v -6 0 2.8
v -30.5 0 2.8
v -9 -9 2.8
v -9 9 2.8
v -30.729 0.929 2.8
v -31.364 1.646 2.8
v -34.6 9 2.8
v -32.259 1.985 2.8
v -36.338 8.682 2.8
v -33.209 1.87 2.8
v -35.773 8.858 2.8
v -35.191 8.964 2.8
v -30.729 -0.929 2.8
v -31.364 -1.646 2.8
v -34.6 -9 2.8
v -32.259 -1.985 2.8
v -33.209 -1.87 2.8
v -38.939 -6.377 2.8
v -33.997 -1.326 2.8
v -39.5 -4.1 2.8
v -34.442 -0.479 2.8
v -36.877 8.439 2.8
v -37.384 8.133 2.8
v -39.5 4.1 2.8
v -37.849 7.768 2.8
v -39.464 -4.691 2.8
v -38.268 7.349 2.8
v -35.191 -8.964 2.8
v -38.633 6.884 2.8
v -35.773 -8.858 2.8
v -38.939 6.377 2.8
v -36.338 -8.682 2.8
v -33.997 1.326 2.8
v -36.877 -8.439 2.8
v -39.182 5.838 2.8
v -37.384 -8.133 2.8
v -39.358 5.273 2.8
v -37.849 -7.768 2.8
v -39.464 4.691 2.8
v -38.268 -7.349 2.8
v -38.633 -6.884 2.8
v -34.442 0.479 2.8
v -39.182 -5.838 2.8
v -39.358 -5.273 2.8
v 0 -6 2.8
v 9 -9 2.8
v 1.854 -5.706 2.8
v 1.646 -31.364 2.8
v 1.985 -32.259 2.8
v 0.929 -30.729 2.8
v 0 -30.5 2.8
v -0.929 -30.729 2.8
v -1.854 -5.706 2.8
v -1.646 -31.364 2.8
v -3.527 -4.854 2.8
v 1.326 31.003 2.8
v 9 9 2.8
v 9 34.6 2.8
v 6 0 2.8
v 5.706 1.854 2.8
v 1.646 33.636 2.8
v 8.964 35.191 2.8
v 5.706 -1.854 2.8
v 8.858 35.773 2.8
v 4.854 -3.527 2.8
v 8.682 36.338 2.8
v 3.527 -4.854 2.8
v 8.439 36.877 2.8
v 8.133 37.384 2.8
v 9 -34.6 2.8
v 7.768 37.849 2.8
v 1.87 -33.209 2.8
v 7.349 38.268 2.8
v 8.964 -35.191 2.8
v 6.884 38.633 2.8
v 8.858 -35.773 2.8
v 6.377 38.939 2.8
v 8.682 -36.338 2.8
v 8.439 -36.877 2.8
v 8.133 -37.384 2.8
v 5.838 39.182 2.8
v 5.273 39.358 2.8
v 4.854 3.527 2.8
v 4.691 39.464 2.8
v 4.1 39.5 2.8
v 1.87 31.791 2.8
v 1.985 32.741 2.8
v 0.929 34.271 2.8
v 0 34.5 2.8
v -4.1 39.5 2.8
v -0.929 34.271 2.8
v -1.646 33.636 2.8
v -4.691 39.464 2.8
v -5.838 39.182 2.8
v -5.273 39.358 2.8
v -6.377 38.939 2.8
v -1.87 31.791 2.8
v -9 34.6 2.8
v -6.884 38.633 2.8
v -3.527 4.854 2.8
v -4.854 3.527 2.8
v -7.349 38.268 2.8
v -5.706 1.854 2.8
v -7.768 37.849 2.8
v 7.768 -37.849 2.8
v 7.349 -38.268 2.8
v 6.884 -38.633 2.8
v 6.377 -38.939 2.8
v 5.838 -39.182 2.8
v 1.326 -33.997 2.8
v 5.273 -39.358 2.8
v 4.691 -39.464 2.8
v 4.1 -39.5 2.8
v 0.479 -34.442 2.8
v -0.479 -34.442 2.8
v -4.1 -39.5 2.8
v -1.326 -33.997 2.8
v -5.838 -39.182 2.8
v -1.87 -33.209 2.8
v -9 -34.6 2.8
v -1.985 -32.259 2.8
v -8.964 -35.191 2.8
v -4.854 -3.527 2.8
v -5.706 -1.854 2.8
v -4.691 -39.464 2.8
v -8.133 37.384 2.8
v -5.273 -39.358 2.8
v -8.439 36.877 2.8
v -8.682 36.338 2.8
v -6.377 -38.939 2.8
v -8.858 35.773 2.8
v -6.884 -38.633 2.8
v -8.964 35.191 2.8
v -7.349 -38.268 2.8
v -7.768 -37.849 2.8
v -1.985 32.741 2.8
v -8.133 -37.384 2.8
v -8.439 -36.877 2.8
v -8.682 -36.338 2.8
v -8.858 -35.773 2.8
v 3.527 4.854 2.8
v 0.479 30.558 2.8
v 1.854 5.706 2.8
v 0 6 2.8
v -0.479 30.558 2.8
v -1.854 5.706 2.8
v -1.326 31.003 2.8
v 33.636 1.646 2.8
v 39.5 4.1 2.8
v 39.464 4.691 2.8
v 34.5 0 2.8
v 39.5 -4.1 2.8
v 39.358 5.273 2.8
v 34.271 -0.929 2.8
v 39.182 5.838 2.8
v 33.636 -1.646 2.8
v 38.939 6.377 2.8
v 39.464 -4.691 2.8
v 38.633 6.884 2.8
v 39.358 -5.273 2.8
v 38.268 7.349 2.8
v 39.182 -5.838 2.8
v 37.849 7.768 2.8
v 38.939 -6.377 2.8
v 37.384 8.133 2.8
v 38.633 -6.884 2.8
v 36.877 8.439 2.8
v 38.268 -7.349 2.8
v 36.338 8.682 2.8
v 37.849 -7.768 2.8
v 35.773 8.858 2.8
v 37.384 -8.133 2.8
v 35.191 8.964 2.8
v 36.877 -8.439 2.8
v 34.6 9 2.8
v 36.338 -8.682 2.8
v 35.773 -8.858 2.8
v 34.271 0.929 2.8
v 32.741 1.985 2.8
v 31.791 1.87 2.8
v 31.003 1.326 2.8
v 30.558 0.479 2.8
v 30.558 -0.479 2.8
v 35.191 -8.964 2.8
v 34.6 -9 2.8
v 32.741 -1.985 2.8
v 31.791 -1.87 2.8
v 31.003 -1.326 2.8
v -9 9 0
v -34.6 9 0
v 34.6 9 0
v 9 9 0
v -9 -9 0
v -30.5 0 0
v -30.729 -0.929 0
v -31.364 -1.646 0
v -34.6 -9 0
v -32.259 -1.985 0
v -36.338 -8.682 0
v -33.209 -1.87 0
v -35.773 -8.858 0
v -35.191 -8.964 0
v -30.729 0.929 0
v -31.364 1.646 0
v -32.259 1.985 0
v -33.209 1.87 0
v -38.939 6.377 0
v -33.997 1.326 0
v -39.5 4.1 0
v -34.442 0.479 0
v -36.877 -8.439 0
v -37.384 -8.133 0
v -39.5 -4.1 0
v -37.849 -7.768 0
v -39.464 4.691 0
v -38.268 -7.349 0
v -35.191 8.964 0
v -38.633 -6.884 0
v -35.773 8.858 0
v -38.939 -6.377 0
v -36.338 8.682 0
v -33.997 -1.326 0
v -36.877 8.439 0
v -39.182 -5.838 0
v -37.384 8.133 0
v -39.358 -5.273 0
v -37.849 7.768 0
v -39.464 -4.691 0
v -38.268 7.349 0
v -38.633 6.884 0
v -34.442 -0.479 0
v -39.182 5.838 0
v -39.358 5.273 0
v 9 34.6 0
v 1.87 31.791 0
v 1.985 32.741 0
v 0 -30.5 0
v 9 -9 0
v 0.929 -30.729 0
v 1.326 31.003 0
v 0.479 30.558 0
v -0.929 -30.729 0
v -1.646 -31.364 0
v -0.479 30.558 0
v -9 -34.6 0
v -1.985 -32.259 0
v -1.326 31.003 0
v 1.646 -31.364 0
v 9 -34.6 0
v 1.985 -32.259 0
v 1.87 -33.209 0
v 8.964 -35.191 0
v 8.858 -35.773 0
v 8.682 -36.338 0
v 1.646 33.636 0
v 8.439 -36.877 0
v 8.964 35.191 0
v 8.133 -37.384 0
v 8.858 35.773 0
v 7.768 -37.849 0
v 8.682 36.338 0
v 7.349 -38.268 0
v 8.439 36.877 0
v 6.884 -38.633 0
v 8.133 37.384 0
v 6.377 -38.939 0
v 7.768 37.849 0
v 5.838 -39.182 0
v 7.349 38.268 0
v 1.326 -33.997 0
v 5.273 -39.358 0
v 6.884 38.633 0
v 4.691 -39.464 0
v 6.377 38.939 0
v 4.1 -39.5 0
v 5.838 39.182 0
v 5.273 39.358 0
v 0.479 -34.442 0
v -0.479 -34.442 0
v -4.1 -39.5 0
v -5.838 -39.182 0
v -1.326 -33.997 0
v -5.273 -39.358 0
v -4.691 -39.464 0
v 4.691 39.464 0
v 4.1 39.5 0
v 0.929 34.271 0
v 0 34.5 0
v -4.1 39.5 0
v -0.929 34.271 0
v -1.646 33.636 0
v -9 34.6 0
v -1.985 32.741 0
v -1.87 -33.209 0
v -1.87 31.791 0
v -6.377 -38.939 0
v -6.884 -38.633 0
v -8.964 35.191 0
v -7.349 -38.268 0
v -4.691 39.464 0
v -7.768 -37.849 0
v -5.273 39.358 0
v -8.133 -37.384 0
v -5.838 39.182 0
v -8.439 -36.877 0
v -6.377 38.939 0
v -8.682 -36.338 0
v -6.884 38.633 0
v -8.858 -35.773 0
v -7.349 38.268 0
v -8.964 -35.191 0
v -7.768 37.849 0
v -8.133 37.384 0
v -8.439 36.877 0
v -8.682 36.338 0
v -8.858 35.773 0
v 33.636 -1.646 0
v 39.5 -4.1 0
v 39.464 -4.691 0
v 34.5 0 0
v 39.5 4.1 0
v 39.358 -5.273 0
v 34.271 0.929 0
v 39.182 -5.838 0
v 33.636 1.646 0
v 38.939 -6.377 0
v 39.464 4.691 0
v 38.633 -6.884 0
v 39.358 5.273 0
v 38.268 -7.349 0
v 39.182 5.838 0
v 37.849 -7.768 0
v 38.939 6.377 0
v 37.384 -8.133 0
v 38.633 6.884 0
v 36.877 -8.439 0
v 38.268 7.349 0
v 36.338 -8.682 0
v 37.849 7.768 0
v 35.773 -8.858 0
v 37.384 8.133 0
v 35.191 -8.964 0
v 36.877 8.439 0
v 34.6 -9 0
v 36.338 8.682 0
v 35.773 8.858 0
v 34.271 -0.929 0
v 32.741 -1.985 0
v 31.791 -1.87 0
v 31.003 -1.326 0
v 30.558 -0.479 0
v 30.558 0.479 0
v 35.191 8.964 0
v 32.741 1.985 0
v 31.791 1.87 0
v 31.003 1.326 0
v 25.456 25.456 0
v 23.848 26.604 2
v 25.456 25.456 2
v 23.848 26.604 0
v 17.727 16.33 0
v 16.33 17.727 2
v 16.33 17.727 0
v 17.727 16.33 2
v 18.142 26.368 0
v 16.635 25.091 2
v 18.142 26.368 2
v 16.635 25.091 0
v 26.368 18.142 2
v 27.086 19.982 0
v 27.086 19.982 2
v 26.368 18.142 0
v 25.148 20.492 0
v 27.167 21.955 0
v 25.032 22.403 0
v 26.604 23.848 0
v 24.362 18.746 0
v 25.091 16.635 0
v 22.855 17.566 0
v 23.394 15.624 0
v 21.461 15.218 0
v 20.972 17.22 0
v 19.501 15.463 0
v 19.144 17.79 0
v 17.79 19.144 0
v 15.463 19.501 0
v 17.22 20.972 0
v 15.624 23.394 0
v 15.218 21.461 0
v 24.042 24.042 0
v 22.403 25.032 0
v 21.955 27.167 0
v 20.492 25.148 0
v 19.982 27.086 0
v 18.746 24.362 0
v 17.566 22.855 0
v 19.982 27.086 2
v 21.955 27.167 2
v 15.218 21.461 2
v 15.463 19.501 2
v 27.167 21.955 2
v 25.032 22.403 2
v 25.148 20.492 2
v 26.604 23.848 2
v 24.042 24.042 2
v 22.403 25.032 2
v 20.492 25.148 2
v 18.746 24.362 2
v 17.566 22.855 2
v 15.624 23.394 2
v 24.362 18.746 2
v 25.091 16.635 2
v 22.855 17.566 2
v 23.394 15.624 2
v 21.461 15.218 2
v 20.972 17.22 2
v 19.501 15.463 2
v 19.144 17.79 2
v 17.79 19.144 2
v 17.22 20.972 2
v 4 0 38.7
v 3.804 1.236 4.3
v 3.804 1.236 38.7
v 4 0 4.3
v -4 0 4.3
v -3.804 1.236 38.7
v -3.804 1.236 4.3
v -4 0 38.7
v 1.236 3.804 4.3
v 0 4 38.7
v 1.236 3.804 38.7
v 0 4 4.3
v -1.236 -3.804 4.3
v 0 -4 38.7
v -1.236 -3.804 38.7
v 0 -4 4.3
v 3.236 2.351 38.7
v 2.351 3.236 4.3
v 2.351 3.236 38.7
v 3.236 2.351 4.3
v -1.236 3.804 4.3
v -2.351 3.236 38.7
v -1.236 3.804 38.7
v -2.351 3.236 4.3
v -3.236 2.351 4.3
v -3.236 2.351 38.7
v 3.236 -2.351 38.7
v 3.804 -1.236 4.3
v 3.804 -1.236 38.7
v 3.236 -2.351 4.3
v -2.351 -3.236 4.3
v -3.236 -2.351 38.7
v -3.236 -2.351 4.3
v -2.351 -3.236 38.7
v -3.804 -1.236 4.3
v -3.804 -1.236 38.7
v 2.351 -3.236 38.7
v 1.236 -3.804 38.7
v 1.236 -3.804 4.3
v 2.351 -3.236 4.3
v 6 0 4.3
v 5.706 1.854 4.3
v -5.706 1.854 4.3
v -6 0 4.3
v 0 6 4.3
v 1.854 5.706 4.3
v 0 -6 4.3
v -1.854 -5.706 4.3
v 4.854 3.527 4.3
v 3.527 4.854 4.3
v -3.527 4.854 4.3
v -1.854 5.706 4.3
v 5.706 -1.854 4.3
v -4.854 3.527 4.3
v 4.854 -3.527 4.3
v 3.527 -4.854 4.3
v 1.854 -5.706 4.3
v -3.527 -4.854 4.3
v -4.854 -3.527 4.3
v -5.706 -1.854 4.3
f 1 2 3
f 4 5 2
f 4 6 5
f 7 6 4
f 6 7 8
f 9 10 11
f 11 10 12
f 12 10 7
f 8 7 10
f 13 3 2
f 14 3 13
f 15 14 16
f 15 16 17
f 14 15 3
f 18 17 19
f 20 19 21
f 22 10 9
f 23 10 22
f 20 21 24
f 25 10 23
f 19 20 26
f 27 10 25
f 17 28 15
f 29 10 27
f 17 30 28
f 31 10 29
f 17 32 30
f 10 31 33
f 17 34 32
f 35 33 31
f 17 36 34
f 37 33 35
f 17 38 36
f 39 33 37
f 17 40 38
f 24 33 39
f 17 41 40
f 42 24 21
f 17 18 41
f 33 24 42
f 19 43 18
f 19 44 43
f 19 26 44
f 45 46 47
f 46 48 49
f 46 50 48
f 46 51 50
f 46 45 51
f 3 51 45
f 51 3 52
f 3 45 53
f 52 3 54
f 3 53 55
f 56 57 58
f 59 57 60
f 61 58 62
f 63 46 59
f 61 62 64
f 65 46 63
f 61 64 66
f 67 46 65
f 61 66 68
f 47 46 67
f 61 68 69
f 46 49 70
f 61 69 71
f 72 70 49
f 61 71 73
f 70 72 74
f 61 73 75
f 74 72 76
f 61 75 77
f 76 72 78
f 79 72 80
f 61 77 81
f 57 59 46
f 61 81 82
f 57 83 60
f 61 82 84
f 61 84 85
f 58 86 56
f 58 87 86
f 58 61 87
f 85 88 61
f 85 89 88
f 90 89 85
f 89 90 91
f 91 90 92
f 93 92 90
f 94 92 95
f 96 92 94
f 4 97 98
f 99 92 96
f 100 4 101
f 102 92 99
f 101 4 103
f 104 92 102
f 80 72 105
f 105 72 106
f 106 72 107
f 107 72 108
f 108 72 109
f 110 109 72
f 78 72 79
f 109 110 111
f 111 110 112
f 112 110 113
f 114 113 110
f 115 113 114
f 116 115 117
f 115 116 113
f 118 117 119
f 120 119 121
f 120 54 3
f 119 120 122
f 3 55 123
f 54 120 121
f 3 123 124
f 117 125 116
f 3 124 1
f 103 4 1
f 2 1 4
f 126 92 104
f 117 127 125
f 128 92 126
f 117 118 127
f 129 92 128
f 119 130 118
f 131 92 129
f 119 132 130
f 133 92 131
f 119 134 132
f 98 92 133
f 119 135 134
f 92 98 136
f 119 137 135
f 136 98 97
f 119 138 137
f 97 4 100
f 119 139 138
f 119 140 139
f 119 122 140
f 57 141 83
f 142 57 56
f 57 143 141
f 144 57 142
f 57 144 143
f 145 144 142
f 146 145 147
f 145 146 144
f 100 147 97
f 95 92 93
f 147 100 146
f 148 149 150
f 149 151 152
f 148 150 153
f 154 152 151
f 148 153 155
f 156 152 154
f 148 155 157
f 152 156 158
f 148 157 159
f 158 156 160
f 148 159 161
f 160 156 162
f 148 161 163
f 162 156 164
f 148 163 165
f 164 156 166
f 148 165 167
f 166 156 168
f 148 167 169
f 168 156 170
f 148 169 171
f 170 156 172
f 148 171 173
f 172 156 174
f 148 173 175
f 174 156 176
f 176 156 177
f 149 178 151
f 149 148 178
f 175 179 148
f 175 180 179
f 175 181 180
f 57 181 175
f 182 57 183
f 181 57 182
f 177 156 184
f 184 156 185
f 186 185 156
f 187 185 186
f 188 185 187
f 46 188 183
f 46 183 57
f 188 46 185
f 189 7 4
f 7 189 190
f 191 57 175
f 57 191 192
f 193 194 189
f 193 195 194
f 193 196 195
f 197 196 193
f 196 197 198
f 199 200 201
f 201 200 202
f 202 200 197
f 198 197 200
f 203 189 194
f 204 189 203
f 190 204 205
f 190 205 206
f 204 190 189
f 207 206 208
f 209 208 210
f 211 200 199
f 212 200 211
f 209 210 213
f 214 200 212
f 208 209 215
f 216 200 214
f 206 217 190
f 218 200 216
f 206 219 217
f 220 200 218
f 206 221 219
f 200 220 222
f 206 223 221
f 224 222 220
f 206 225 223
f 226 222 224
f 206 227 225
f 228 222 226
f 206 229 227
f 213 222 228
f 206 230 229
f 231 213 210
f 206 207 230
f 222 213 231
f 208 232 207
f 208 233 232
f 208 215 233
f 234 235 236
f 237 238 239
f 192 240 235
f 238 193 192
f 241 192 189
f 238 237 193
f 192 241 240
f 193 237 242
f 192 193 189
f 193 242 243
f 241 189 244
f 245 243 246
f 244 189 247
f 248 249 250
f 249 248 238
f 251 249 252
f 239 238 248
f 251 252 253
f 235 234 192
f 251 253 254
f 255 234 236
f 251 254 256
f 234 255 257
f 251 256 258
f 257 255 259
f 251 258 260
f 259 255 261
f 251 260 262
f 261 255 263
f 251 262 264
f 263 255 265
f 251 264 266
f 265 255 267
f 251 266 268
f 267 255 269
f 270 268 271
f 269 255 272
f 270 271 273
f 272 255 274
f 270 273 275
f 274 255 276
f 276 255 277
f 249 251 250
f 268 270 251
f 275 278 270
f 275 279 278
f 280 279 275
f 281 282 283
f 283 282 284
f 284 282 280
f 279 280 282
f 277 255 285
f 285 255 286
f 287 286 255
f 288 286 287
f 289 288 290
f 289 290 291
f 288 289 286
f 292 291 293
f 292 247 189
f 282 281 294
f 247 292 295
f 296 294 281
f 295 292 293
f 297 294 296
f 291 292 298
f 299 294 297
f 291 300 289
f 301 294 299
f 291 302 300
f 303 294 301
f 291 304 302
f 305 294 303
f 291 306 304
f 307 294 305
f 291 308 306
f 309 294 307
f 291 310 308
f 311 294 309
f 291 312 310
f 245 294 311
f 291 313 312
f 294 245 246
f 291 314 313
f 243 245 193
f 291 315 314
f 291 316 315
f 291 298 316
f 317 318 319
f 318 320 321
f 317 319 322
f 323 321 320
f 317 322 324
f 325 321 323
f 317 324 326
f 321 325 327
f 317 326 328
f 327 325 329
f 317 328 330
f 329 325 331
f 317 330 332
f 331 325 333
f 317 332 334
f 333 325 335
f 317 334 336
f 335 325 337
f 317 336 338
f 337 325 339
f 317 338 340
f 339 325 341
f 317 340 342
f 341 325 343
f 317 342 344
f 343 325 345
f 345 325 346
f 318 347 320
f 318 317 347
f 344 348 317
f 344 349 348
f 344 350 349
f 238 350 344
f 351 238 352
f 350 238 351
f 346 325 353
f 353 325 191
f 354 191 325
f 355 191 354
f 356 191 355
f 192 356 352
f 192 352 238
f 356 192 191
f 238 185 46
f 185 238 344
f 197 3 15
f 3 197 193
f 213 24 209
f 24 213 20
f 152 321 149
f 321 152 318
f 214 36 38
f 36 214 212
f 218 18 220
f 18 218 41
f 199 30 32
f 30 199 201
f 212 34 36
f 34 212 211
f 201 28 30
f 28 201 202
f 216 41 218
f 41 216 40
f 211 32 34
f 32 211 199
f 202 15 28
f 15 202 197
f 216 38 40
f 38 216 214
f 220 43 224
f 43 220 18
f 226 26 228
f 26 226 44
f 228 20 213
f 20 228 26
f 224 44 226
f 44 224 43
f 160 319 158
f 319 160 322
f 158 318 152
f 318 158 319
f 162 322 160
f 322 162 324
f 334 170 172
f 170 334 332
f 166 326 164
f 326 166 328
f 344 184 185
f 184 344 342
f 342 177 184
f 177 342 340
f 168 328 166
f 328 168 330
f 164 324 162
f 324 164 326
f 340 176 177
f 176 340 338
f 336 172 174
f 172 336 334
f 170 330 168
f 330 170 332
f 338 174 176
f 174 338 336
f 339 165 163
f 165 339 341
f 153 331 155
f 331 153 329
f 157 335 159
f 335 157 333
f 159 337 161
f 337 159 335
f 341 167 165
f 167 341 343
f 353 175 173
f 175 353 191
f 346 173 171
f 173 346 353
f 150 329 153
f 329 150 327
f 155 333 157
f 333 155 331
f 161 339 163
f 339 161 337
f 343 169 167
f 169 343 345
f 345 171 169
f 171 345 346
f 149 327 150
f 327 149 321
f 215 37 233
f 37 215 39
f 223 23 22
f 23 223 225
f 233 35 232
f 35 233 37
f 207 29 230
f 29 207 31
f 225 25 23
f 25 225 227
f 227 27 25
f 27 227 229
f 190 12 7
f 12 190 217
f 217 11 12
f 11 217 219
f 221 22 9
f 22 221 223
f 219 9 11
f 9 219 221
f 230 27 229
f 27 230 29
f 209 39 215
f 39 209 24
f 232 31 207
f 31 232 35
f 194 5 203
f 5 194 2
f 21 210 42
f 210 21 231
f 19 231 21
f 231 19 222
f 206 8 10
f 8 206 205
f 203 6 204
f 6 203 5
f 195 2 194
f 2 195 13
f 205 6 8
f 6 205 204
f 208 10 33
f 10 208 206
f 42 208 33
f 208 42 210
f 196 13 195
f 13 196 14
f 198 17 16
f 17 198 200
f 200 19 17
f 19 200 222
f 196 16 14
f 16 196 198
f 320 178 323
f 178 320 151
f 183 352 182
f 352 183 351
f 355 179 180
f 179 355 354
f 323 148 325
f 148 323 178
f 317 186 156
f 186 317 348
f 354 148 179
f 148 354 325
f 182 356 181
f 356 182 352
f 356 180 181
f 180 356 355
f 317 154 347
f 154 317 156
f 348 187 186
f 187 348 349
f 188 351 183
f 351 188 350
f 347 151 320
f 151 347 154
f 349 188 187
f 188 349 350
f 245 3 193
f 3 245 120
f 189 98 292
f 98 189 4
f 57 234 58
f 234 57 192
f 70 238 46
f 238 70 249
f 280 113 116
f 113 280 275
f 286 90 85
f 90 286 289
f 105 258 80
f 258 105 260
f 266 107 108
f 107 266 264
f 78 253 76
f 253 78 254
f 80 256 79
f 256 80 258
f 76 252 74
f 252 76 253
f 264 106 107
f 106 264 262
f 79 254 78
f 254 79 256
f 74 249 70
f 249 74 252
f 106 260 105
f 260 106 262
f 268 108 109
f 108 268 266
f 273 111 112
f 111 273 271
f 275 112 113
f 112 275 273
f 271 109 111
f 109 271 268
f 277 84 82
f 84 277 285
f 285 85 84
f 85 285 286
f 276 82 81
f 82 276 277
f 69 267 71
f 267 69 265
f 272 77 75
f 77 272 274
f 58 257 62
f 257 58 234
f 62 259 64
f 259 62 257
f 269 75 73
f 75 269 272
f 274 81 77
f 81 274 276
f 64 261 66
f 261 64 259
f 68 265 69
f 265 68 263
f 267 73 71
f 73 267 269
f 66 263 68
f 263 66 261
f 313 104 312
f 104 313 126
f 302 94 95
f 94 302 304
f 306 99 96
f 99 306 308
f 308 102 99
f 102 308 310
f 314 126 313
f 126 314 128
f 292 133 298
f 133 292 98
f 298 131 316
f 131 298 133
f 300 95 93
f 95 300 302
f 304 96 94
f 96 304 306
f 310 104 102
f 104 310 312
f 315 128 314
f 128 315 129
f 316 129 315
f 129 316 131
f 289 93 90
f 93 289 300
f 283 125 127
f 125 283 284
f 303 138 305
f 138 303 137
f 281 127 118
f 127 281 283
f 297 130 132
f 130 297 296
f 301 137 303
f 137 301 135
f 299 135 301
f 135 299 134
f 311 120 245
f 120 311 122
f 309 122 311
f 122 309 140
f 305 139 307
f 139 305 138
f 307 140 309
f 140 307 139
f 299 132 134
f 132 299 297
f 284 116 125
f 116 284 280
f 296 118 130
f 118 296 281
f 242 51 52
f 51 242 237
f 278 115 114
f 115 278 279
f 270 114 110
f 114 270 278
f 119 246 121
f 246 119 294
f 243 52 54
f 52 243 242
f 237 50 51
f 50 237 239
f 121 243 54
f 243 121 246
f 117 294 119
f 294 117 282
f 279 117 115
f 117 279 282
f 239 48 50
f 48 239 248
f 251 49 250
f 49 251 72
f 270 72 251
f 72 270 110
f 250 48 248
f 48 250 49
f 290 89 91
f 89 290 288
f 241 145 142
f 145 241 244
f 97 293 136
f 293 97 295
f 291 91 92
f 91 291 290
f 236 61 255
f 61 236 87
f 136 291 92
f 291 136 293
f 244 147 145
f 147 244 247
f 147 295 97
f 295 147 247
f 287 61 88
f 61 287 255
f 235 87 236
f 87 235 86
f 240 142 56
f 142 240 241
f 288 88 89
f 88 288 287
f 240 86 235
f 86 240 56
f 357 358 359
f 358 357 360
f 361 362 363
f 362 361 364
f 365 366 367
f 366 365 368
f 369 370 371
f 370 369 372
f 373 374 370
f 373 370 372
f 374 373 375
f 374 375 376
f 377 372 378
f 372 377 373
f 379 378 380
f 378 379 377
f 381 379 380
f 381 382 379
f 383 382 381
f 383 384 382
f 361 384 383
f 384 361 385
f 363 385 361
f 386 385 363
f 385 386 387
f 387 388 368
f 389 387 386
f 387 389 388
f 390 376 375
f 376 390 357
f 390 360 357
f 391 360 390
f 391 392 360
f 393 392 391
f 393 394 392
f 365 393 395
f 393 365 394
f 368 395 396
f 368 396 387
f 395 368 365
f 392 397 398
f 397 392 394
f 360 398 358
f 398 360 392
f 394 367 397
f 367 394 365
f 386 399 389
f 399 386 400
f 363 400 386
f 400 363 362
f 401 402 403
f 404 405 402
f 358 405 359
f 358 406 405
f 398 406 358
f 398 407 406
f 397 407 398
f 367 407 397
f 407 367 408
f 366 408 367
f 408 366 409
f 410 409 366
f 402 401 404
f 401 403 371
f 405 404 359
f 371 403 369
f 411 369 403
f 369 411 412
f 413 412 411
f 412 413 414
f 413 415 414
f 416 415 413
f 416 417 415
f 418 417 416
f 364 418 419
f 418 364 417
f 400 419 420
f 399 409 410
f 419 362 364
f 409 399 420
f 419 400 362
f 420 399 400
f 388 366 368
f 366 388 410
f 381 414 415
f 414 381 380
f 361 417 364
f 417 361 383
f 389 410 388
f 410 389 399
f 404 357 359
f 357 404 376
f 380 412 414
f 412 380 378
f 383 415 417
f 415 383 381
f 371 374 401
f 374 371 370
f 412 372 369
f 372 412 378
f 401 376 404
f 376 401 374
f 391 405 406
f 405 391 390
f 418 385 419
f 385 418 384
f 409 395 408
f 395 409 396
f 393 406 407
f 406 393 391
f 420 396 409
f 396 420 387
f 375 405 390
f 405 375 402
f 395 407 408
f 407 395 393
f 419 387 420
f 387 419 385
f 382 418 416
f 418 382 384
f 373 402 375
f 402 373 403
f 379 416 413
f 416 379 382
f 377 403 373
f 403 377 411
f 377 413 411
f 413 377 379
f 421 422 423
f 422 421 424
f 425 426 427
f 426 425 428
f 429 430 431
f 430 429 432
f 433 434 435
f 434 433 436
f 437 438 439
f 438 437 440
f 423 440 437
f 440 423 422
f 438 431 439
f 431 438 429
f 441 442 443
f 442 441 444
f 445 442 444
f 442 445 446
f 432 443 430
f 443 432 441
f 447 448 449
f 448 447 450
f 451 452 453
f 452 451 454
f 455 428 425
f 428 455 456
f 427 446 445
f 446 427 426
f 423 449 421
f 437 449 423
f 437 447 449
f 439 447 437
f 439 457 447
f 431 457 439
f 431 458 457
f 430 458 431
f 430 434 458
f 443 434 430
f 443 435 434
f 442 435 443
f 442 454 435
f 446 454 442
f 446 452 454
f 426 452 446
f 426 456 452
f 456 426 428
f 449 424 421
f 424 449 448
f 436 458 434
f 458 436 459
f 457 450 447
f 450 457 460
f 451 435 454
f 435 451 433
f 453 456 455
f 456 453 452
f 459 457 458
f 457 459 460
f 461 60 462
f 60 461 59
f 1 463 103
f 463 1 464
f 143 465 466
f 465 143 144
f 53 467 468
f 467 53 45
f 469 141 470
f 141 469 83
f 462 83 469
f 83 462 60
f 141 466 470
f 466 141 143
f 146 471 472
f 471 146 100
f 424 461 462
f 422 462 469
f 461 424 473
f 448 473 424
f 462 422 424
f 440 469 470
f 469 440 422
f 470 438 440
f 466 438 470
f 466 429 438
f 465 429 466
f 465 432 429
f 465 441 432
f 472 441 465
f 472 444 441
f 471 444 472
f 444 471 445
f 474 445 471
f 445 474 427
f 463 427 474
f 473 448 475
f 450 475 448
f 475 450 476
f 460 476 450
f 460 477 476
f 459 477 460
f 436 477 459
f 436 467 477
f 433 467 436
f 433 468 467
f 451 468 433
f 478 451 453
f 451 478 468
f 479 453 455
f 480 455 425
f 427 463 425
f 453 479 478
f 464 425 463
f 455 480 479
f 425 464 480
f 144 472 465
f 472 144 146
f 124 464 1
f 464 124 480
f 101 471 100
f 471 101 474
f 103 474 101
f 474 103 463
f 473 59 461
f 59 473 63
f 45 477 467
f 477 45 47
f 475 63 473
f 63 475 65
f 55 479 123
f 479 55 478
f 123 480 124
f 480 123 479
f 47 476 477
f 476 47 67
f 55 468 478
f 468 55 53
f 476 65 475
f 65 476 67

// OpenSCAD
// file: lineroller_ABC_winch.scad
include <parameters.scad>
include <lineroller_parameters.scad>
use <sweep.scad>
use <util.scad>

//base(center=true, twod=true, openings=[true,false,true,true]);
module base(base_th = Base_th, flerp0 = 6, flerp1 = 6, center=false, twod=false, openings=[false, false, false, false]){
  l = Depth_of_lineroller_base + 2*Bearing_r + 2*Bearing_wall + flerp0 + flerp1;
  for(k=[0,1])
  translate([+k*(l/2+Depth_of_lineroller_base/2),-k*(l/2-Depth_of_lineroller_base/2),0])
    translate([center ? -l/2 : -Depth_of_lineroller_base/2-flerp0, -Depth_of_lineroller_base/2, 0])
    rotate([0,0,k*90])
    difference(){
      if(twod){
        rounded_cube2([l, Depth_of_lineroller_base], Lineroller_base_r, $fn=13*4);
      } else {
        rounded_cube2([l, Depth_of_lineroller_base, base_th], Lineroller_base_r, $fn=13*4);
      }
      for(x=[Depth_of_lineroller_base/2-2, l - (Depth_of_lineroller_base/2-2)])
        translate([x, Depth_of_lineroller_base/2, -1])
          if(twod)
            circle(d=4, $fs=1);
          else
            cylinder(d=4, h=base_th+2, $fs=1);
    }
  for(i=[0:4])
    if(twod && openings[i])
      translate([center ? 0 : l/2-Depth_of_lineroller_base/2-flerp0,0,0])
      rotate([0,0,i*90])
        translate([l/2-1,-1])
          square([6,2]);
}

function foot_shape(r, e, f, w) = concat([
  for(i=[90:10:181])
     [-e-Lineroller_wall_th+r,f+w-r] + r*[cos(i), sin(i)]
  ],
  [for(i=[180:10:271])
     [-e-Lineroller_wall_th+r,-f+r] + r*[cos(i), sin(i)]
  ],
  [for(i=[270:10:361])
     [-r,-f+r] + r*[cos(i), sin(i)]
  ],
  [for(i=[0:10:91])
     [-r,w+f-r] + r*[cos(i), sin(i)]
  ]);

function wall_shape(a, w, extr) = 1 - (sin(a*90))*extr/((w/2)+extr); // a 0 -> 1

lineroller_ABC_winch(edge_start=40, edge_stop = 180-40, with_base=true);
module lineroller_ABC_winch(base_th = Base_th, edge_start=0, edge_stop=180, tower_h = Tower_h, bearing_width=Bearing_width, shoulder=0.4, with_base=false, twod = false){
  module wall(){
    // Foot parameters
    c = 10;
    e = 5.52;
    f = 2.5; // extra x-length for swung wall
    w = Bearing_r*2+2*Bearing_wall;

    q = 3.9;
    round_part = 0.65;
    // Main block
    r2 = Bearing_bore_r+1.3;
    foot_shape_r = 1.0;
    translate([0, -(bearing_width + 2*Wall_th)/2, 0])
      rotate([-90,-90,0]){
        difference(){
          union(){
            // Foot with a swing
            translate([0,0,Lineroller_wall_th])
            sweep(foot_shape(foot_shape_r, e, f, w), concat(
                   [for (h = [base_th/(tower_h-2*Bearing_r+q)-0.01:0.05:1.00001])
                     translation([(tower_h-2*Bearing_r+q)*h,0,0])
                     * translation([0,w/2,0])
                     * scaling([1, wall_shape(h, w, f), wall_shape(h, Lineroller_wall_th, e/2)])
                     * translation([0,-w/2,0])
                     * rotation([0,-90,0])
                     ],

                   [for (h = [0:(1 - 0.01)/40:1])
                     translation([tower_h-2*Bearing_r+q+h*(1*Bearing_r+Bearing_wall),0,0])
                     * translation([0,w/2,0])
                     * scaling([1,wall_shape(1, w, f)*((1-round_part) + round_part*sqrt(1-(h)*(h))),
                                  wall_shape(1, Lineroller_wall_th, e/2)])
                     * translation([0,-w/2,0])
                     * rotation([0,-90,0])
                     ]
                     ));

            translate([tower_h-Bearing_r,Bearing_r+Bearing_wall,0])
              cylinder(r=r2, h=Lineroller_wall_th+shoulder, $fs=1);
          }
          translate([tower_h-Bearing_r,Bearing_r+Bearing_wall,-1])
            cylinder(d=Bearing_bore_r*2+0.3, h=Lineroller_wall_th+0.5+2, $fs=1);
        }
      }
    // Edge to prevent line from falling of...
    a = 1.5;
    b= 0.8;
    rot_r = Bearing_r+b;
    difference(){
      translate([Bearing_r+Bearing_wall, -bearing_width/2-0.8, tower_h - Bearing_r])
        sweep([[0,0], [0,-0.5], [b+a, -0.5], [b+a,0], [b, a], [0, a]],
            [for (ang=[edge_start+0.01:((edge_stop-edge_start)-0.03)/100:edge_stop-0.01])
            rotation([0,ang,0])
            * translation([rot_r,0,0])
            * scaling([
              1,
              (ang<edge_start+a*rot_r) ? sqrt(1-pow(a*rot_r-(ang-edge_start),2)/pow(a*rot_r,2)) :
              (ang>edge_stop-a*rot_r) ? sqrt(1-pow(ang-(edge_stop - a*rot_r),2)/pow(a*rot_r,2)) : 1,
              1])
            ]);
      translate([-10,-10,0])
        cube([10,10,tower_h]);
      translate([2*Bearing_r+2*Bearing_wall,-10,0])
        cube([10,10,tower_h]);
    }
  }

  if(!twod){
    wall();
    mirror([0,1,0])
      wall();
  }
  if(with_base)
    base(twod=twod, openings=[true,false,true,false]);
}
// file: gears.scad
include <parameters.scad>
//////////// Functions /////////////
function mirror_point(coord) =
[
	coord[0],
	-coord[1]
];

function rotate_point(rotate, coord) =
[
	cos(rotate)*coord[0] + sin(rotate)*coord[1],
	cos(rotate)*coord[1] - sin(rotate)*coord[0]
];

function involute(base_radius, involute_angle) =
[
	base_radius*(cos(involute_angle) + involute_angle*PI/180*sin(involute_angle)),
	base_radius*(sin(involute_angle) - involute_angle*PI/180*cos(involute_angle)),
];

function rotated_involute(rotate, base_radius, involute_angle) =
[
	cos(rotate)*involute(base_radius, involute_angle)[0] + sin(rotate)*involute(base_radius, involute_angle)[1],
	cos(rotate)*involute(base_radius, involute_angle)[1] - sin(rotate)*involute(base_radius, involute_angle)[0]
];

function involute_intersect_angle(base_radius, radius) = sqrt(pow(radius/base_radius, 2) - 1)*180/PI;


//////////// Modules /////////////
module involute_gear_tooth(pitch_radius,
	                         root_radius,
	                         base_radius,
	                         outer_radius,
	                         half_thick_angle,
	                         involute_facets){
	min_radius   = max(base_radius,root_radius);
	pitch_point  = involute(base_radius, involute_intersect_angle(base_radius, pitch_radius));
	pitch_angle  = atan2(pitch_point[1], pitch_point[0]);
	centre_angle = pitch_angle + half_thick_angle;
	start_angle = involute_intersect_angle(base_radius, min_radius);
	stop_angle = involute_intersect_angle(base_radius, outer_radius);
	res=(involute_facets!=0)?involute_facets:($fn==0)?5:$fn/4;
  for(i=[1:res]){
    polygon(points=[[0,0], rotate_point(centre_angle, involute(base_radius,start_angle+(stop_angle - start_angle)*(i-1)/res)),
                           rotate_point(centre_angle, involute(base_radius,start_angle+(stop_angle - start_angle)*i/res)),
                           mirror_point(rotate_point(centre_angle, involute(base_radius,start_angle+(stop_angle - start_angle)*i/res))),
                           mirror_point(rotate_point(centre_angle, involute(base_radius,start_angle+(stop_angle - start_angle)*(i-1)/res)))],
        paths=[[0,1,2,3,4,0]]);
  }
}

module gear_shape(number_of_teeth,
	                pitch_radius,
	                root_radius,
	                base_radius,
	                outer_radius,
	                half_thick_angle,
	                involute_facets){
	union(){
		rotate(half_thick_angle) circle($fn=number_of_teeth*2, r=root_radius);
		for(i = [1:number_of_teeth]){
			rotate([0,0,i*360/number_of_teeth]){
				involute_gear_tooth(pitch_radius     = pitch_radius,
					                  root_radius      = root_radius,
					                  base_radius      = base_radius,
					                  outer_radius     = outer_radius,
					                  half_thick_angle = half_thick_angle,
					                  involute_facets  = involute_facets);
			}
		}
	}
}

module gear(number_of_teeth = 15,
	          circular_pitch  = false,
            diametral_pitch = false,
	          pressure_angle  = 28,
	          clearance       = 0.2,
	          gear_thickness  = 5,
	          rim_thickness   = 8,
	          rim_width       = 5,
	          hub_thickness   = 10,
	          hub_diameter    = 15,
	          bore_diameter   = 5,
	          circles         = 0,
	          backlash        = 0,
	          twist           = 0,
	          involute_facets = 0){
	if(circular_pitch==false && diametral_pitch==false)
		echo("ERROR: gear module needs either a diametral_pitch or circular_pitch");

	// Convert diametrial pitch to our native circular pitch
	circular_pitch             = (circular_pitch!=false?circular_pitch:180/diametral_pitch);

	// Pitch diameter: Diameter of pitch circle.
	pitch_diameter             = number_of_teeth*circular_pitch/180;
	pitch_radius               = pitch_diameter/2;

	// Base Circle
	base_radius                = pitch_radius*cos(pressure_angle);

	// Diametrial pitch: Number of teeth per unit length.
	pitch_diametrial           = number_of_teeth/pitch_diameter;

	// Addendum: Radial distance from pitch circle to outside circle.
	addendum                   = 1/pitch_diametrial;

	//Outer Circle
	outer_radius               = pitch_radius + addendum;

	// Dedendum: Radial distance from pitch circle to root diameter
	dedendum                   = addendum + clearance;

	// Root diameter: Diameter of bottom of tooth spaces.
	root_radius                = pitch_radius - dedendum;
	backlash_angle             = backlash/pitch_radius*180/PI;
	half_thick_angle           = (360/number_of_teeth - backlash_angle)/4;

	// Variables controlling the rim.
	rim_radius                 = root_radius - rim_width;

	// Variables controlling the circular holes in the gear.
	circle_orbit_diameter      = hub_diameter/2 + rim_radius;
	circle_orbit_curcumference = PI*circle_orbit_diameter;

	// Limit the circle size to 90% of the gear face.
	circle_diameter            = min(0.70*circle_orbit_curcumference/circles,
			                             (rim_radius-hub_diameter/2)*0.9);

	difference(){
		union(){
			difference(){
				linear_extrude(height = rim_thickness, convexity = 10, twist = twist, slices=floor(gear_thickness/2))
				gear_shape(number_of_teeth,
					         pitch_radius     = pitch_radius,
					         root_radius      = root_radius,
					         base_radius      = base_radius,
					         outer_radius     = outer_radius,
					         half_thick_angle = half_thick_angle,
					         involute_facets  = involute_facets);
				if(gear_thickness < rim_thickness)
					translate([0,0,gear_thickness])
					  cylinder(r = rim_radius, h = rim_thickness-gear_thickness + 1);
			}
			if(gear_thickness > rim_thickness)
				cylinder(r = rim_radius, h = gear_thickness);
			if(hub_thickness > gear_thickness)
				translate([0,0,gear_thickness])
				cylinder(r = hub_diameter/2, h = hub_thickness - gear_thickness);
		}
		if(circles>0){
			for(i=[0:circles-1])
				rotate([0,0,i*360/circles])
				  translate([circle_orbit_diameter/2, 0, -1])
				    cylinder(r = circle_diameter/2, h = max(gear_thickness, rim_thickness) + 3);
		}
	}
}

module my_gear(teeth, height, circular_pitch){
  pitch = (teeth*circular_pitch/360);
	gear(number_of_teeth = teeth,
       // Increasing circular_pitch this makes gears larger
       // Should possibly be parameter in design_numbers.scad...
			 circular_pitch  = circular_pitch,
			 pressure_angle  = 30,
			 clearance       = 0.2,
			 gear_thickness  = height,
			 rim_thickness   = height,
			 rim_width       = 5,
			 hub_thickness   = height,
			 hub_diameter    = 15,
       twist = (180/3.14)*height*1/pitch);
}
//my_gear(40,10);
// file: gear_util.scad
include <parameters.scad>
include <gear_parameters.scad>
use <sweep.scad>
use <util.scad>

//decoration();
// Wallr is radius out to outermost edge of this decoration
// inr is the radius of those rounded corners
// dd is width of circle band to be formed inside of wallr
module decoration(height=10, wallr = 50, dd=10.2, lou=6.9, inr=9, skip_ang = 8.9, push_in_center=1,
extr = 0.6, diff = 0){
  d = 2;
  shpr = 2; // Radius of the bend that shape has
  trou = wallr+shpr-lou;
  stp = 6;
  start_ang = (180/3.14)*(inr/wallr);
  start_ang2 = (180/3.14)*(inr/(wallr-dd-inr));
  last_ang = 60;
  stop_ang = last_ang - start_ang;
  stop_ang2 = last_ang - start_ang2;

  mirror([0,1,0])
    half_decoration();
  half_decoration();
  module half_decoration(){
    step = 90/10;
    // Shape to drag around in order to make nice round insides of decoration
    function shp(l, h, r, d) = concat(
      [[0,-d], [l, -d], [l, 0]],
      [for(a=[step:step:90])
        [l, 0] + [0,r] + r*[cos(270-a), sin(270-a)]],
      [[l-r, h-r]],
      [for(a=[90+step:step:90+90])
        [l, h-2*r] + [0,r] + r*[cos(270-a), sin(270-a)]],
      [[l, h+d], [0,h+d]]);

    rotate([0,0,-last_ang/2])
    sweep(shp(lou, height, 2, d),
       concat(
        [for(i=[last_ang/2-0.1:(stop_ang - last_ang/2)/15:stop_ang])
         rotation([0,0,i])
         * translation([trou,0,0])
         * rotation([90,0,0])]
         ,
        [for(i=[stp:stp:90])
        rotation([0,0,stop_ang])
        * translation([trou,0,0])
        * rotation([90,0,0])
        * translation([+lou-inr+shpr,0,0])
        * rotation([0,i*1.1,0])
        * translation([-lou+inr-shpr,0,0])],
        [translation(dd*[-cos(last_ang), -sin(last_ang), 0])
        * rotation([0,0,stop_ang])
        * translation([trou,0,0])
        * rotation([90,0,0])
        * translation([+lou-inr+shpr,0,0])
        * rotation([0,90*1.1,0])
        * translation([-lou+inr-shpr,0,0])],
        [for(i=[stp:stp:90])
        translation(dd*[-cos(last_ang), -sin(last_ang), 0])
        * rotation([0,0,stop_ang])
        * translation([trou,0,0])
        * rotation([90,0,0])
        * translation([+lou-inr+shpr,0,0])
        * rotation([0,90*1.1 + i*0.9,0])
        * translation([-lou+inr-shpr,0,0])],
        [for(i=[start_ang2:((last_ang/2) - start_ang2)/10:last_ang/2+0.1])
        rotation([0,0,-i+start_ang])
        * translation(dd*[-cos(last_ang), -sin(last_ang), 0])
        * rotation([0,0,stop_ang])
        * translation([trou,0,0])
        * rotation([90,0,0])
        * translation([+lou-inr+shpr,0,0])
        * rotation([0,90*1.1 + 90*0.9,0])
        * translation([-lou+inr-shpr,0,0])]));
  }

  function circle_sector(max_ang, r0, r1, steps=100, diff=0) =
    concat([for (a=[-diff:(max_ang+diff)/steps:(max_ang+diff)+0.5])
              r0*[cos(a), sin(a)]],
           [for (a=[-extr:(max_ang+2*extr)/steps:max_ang+extr+0.01])
             r1*[cos(max_ang-a), sin(max_ang-a)]]);
  translate([0,0,-d])
    rotate([0,0,-last_ang/2+start_ang/2+skip_ang/2]){
      sweep(circle_sector(last_ang-start_ang-skip_ang, push_in_center, wallr-inr/10, diff=diff),
          [translation([0,0,0]),translation([0,0,height+2*d+2])]);
      //sweep(circle_sector(last_ang-start_ang-skip_ang*2, wallr-dd, wallr-2*dd/3+1.0),
      //    [translation([0,0,0]),translation([0,0,height+2*d+2])]);
    }

}

module spool_decoration(){
  wallr_inner = Spool_r - 4;
  inr_inner = 5.2;
  dd_inner = wallr_inner - inr_inner - b608_outer_dia/2 - 6;
  lou_inner = 2.8;
  decoration(height=Spool_height+1+Gear_height,
      wallr = wallr_inner,
      inr = inr_inner,
      dd = dd_inner,
      lou = lou_inner,
      //push_in_center = wallr_inner-25.1,
      push_in_center = max(wallr_inner-25.1, b608_outer_dia/2+inr_inner+4),
      diff = 1.5*(50-Spool_r)/14,
      skip_ang=16.0+(50/Spool_r),
      extr = 6);
}

//torx(remale=true);
module torx(h = Spool_height + 2, r = Spool_r, female=false){
  circs = 12;
  intersection(){
    if(female){
      cylinder(r=r+0.1, h=h, $fn=150);
    } else {
      cylinder(r=r, h=h, $fn=150);
    }
    for(i=[0:1:circs])
      rotate([0,0,i*360/circs]){
        translate([r-5,0,-1])
        cylinder(r=r/4.2, h=h+2, $fn=50);
      if(female){
        rotate([0,0,360/(2*circs)])
          translate([r-7,0,-1])
          cylinder(r2=1, r1=r/1.9, h=h+2, $fn=50);
        }
      }
  }
  cylinder(r=r-5,h=h);
}
// file: sweep.scad
// sweep.scad
//
// This code is copied from
// https://github.com/openscad/list-comprehension-demos
// and
// https://github.com/openscad/scad-utils
// to make hangprinter repo self-contained
// It was included in order to make the worm drive parametric
// In future OpenSCAD (or other script CAD programs)
// worm drives should be will be more easily constructed without
// this user space defined sweep operation.
// See OpenSCAD discussion at:
// https://github.com/openscad/openscad/issues/114

// Look into files
// lists.scad
// X transformations.scad
// linalg.scad
// se3.scad
// so3.scad


// Include modules and fcts:

/// linalg.scad
function vec3(p) = len(p) < 3 ? concat(p,0) : p;
function vec4(p) = let (v3=vec3(p)) len(v3) < 4 ? concat(v3,1) : v3;
function take3(v) = [v[0],v[1],v[2]];
function tail3(v) = [v[3],v[4],v[5]];
function construct_Rt(R,t) = [concat(R[0],t[0]),concat(R[1],t[1]),concat(R[2],t[2]),[0,0,0,1]];

/// so3.scad

function se3_exp_2(t,w) = se3_exp_2_0(t,w,w*w);
function se3_exp_2_0(t,w,theta_sq) =
se3_exp_23(
	so3_exp_2(theta_sq),
	C = (1.0 - theta_sq/20) / 6,
	t=t,w=w);

// Taylor series expansions close to 0
function so3_exp_1(theta_sq) = [
	1 - 1/6*theta_sq,
	0.5
];

function rodrigues_so3_exp(w, A, B) = [
  [1.0 - B*(w[1]*w[1] + w[2]*w[2]), B*(w[0]*w[1]) - A*w[2],          B*(w[0]*w[2]) + A*w[1]],
  [B*(w[0]*w[1]) + A*w[2],          1.0 - B*(w[0]*w[0] + w[2]*w[2]), B*(w[1]*w[2]) - A*w[0]],
  [B*(w[0]*w[2]) - A*w[1],          B*(w[1]*w[2]) + A*w[0],          1.0 - B*(w[0]*w[0] + w[1]*w[1])]
];

function so3_exp_3_0(theta_deg, inv_theta) = [
	sin(theta_deg) * inv_theta,
	(1 - cos(theta_deg)) * (inv_theta * inv_theta)
];

/// se3.scad
function combine_se3_exp(w, ABt) = construct_Rt(rodrigues_so3_exp(w, ABt[0], ABt[1]), ABt[2]);
function se3_exp_1(t,w) = concat(
	so3_exp_1(w*w),
	[t + 0.5 * cross(w,t)]
);

function se3_exp_3(t,w) = se3_exp_3_0(t,w,sqrt(w*w)*180/PI,1/sqrt(w*w));

function se3_exp_23(AB,C,t,w) =
[AB[0], AB[1], t + AB[1] * cross(w,t) + C * cross(w,cross(w,t)) ];

function se3_exp_3_0(t,w,theta_deg,inv_theta) =
se3_exp_23(
	so3_exp_3_0(theta_deg = theta_deg, inv_theta = inv_theta),
	C = (1 - sin(theta_deg) * inv_theta) * (inv_theta * inv_theta),
t=t,w=w);

function se3_exp(mu) = se3_exp_0(t=take3(mu),w=tail3(mu)/180*PI);

function se3_exp_0(t,w) =
combine_se3_exp(w,
// Evaluate by Taylor expansion when near 0
	w*w < 1e-8
	? se3_exp_1(t,w)
	: w*w < 1e-6
	  ? se3_exp_2(t,w)
	  : se3_exp_3(t,w)
);


/// lists.scad
/*!
  Flattens a list one level:

  flatten([[0,1],[2,3]]) => [0,1,2,3]
*/
function flatten(list) = [ for (i = list, v = i) v ];
/*!
  Extracts a subarray from index begin (inclusive) to end (exclusive)

  subarray([1,2,3,4], 1, 2) => [2,3]
*/
function subarray(list,begin=0,end=-1) = [
    let(end = end < 0 ? len(list) : end)
      for (i = [begin : 1 : end-1])
        list[i]
];

/// transformations.scad
//********* Create modifying matrices ***************//
/*!
  Creates a rotation matrix

  xyz = euler angles = rz * ry * rx
  axis = rotation_axis * rotation_angle
*/
function rotation(xyz=undef, axis=undef) =
	xyz != undef && axis != undef ? undef :
	xyz == undef  ? se3_exp([0,0,0,axis[0],axis[1],axis[2]]) :
	len(xyz) == undef ? rotation(axis=[0,0,xyz]) :
	(len(xyz) >= 3 ? rotation(axis=[0,0,xyz[2]]) : identity4()) *
	(len(xyz) >= 2 ? rotation(axis=[0,xyz[1],0]) : identity4()) *
(len(xyz) >= 1 ? rotation(axis=[xyz[0],0,0]) : identity4());

/*!
  Creates a scaling matrix
*/
function scaling(v) = [
	[v[0],0,0,0],
	[0,v[1],0,0],
	[0,0,v[2],0],
	[0,0,0,1],
];

/*!
  Creates a translation matrix
*/
function translation(v) = [
	[1,0,0,v[0]],
	[0,1,0,v[1]],
	[0,0,1,v[2]],
	[0,0,0,1],
];


function project(x) = subarray(x,end=len(x)-1) / x[len(x)-1];

function transform(m, list) = [for (p=list) project(m * vec4(p))];

function to_3d(list) = [ for(v = list) vec3(v) ];

module sweep(shape, path_transforms, closed=false) {

    pathlen = len(path_transforms);
    segments = pathlen + (closed ? 0 : -1);
    shape3d = to_3d(shape);

    function sweep_points() =
      flatten([for (i=[0:pathlen-1])
        transform(path_transforms[i], shape3d)]);

    function loop_faces() = [let (facets=len(shape3d))
        for(s=[0:segments-1], i=[0:facets-1])
          [(s%pathlen) * facets + i,
           (s%pathlen) * facets + (i + 1) % facets,
           ((s + 1) % pathlen) * facets + (i + 1) % facets,
           ((s + 1) % pathlen) * facets + i]];

    bottom_cap = closed ? [] : [[for (i=[len(shape3d)-1:-1:0]) i]];
    top_cap = closed ? [] : [
      [for (i=[0:len(shape3d)-1])
        i+len(shape3d)*(pathlen-1)]];
    polyhedron(points = sweep_points(),
               faces  = concat(loop_faces(),
                               bottom_cap,
                               top_cap),
               convexity=5);
}
// file: lineroller_parameters.scad
include <gear_parameters.scad>

Bearing_width  = 4;
Bearing_r      = 12/2;
Bearing_small_r = 10/2;
Bearing_bore_r = 3/2;

Lineroller_wall_th = 2.3;
// The height that lineroller_ABC_winch will have if we include the bearing
Tower_h = Gap_between_sandwich_and_plate+Gear_height + Spool_height/2 + Bearing_small_r + Bearing_r;

Bearing_wall = 1;
Depth_of_lineroller_tower = Bearing_width + 2*Wall_th; // 9
Depth_of_lineroller_base = Depth_of_lineroller_tower + 9; // 18
Ptfe_r = 2.1;

Lineroller_base_r = Depth_of_lineroller_base/2-1*(Ptfe_r+2);
// file: gear_parameters.scad
Circular_pitch = 262;

Motor_teeth = 10;
Gear_height = 21.4;
Motor_pitch                      = (Motor_teeth*Circular_pitch/360);
Motor_pitch_diametrial           = Motor_teeth/(2*Motor_pitch);
Motor_outer_radius               = Motor_pitch + 1/Motor_pitch_diametrial;

Spool_teeth = 100;
Spool_r = 50;
Spool_height = 8;
Spool_pitch                      = (Spool_teeth*Circular_pitch/360);
Spool_pitch_diametrial           = Spool_teeth/(2*Spool_pitch);
Spool_outer_radius               = Spool_pitch + 1/Spool_pitch_diametrial;

Torx_depth = 5;
Motor_bracket_depth = Gear_height+1+7+Nema17_ring_height+1+Gap_between_sandwich_and_plate;

Spool_core_flerp0 = 16 + 50/2;
// file: parameters.scad
// Parameters shared between modules

Base_th = 2.8;
Beam_width = 15;
Wiggle = 0.25;
Fat_beam_width = Beam_width + Wiggle;
Beam_length = 400;
Wall_th = 2.5;

Min_beam_width = 12.5;
Max_beam_width = 17.5;
Zip_th = 2;
Zip_h = Zip_th + Max_beam_width - Min_beam_width;
Zip_w = 4.5;

Nema17_cube_width          = 42.43;
Nema17_screw_hole_width    = 43.74; // Opposite corner screws
Nema17_ring_diameter       = 22;
Nema17_cube_height         = 39.36;
Nema17_shaft_height        = 63.65;
Nema17_ring_height         = 2;
Nema17_shaft_radius        = 5/2;

b608_outer_dia = 22.2;
b608_width = 7.05;

Gap_between_sandwich_and_plate = 1.5 + Base_th; // 1.5 mm for wiggle

Clamp_wall_extra_length = 4.5;
Clamp_wall_flex_factor = 1.5;

Motor_bracket_flerp_r = 6;
Motor_bracket_flerp = 14;
Motor_bracket_cw = Nema17_cube_width + 6;
Motor_bracket_att_ang = 50;
// main file
include <parameters.scad>
include <gear_parameters.scad>
include <lineroller_parameters.scad>
use <sweep.scad>
use <util.scad>
use <gear_util.scad>
use <gears.scad>
use <lineroller_ABC_winch.scad>

spool_core();
module spool_core(twod = false){
  base(center=true, flerp0=Spool_core_flerp0, twod = twod);
  if(!twod){
    cylinder(d=8, h=Gap_between_sandwich_and_plate + Spool_height + Gear_height + 5, $fn=4*5);
    cylinder(d=12, h=Gap_between_sandwich_and_plate, $fn=4*5);

    rotate([0,0,45])
    translate([30,0,0])
    // A little ring to lock the top
    difference(){
      cylinder(d=8+4, h=2);
      translate([0,0,-1])
        cylinder(d=8, h=2+2);
    }
  }
}
